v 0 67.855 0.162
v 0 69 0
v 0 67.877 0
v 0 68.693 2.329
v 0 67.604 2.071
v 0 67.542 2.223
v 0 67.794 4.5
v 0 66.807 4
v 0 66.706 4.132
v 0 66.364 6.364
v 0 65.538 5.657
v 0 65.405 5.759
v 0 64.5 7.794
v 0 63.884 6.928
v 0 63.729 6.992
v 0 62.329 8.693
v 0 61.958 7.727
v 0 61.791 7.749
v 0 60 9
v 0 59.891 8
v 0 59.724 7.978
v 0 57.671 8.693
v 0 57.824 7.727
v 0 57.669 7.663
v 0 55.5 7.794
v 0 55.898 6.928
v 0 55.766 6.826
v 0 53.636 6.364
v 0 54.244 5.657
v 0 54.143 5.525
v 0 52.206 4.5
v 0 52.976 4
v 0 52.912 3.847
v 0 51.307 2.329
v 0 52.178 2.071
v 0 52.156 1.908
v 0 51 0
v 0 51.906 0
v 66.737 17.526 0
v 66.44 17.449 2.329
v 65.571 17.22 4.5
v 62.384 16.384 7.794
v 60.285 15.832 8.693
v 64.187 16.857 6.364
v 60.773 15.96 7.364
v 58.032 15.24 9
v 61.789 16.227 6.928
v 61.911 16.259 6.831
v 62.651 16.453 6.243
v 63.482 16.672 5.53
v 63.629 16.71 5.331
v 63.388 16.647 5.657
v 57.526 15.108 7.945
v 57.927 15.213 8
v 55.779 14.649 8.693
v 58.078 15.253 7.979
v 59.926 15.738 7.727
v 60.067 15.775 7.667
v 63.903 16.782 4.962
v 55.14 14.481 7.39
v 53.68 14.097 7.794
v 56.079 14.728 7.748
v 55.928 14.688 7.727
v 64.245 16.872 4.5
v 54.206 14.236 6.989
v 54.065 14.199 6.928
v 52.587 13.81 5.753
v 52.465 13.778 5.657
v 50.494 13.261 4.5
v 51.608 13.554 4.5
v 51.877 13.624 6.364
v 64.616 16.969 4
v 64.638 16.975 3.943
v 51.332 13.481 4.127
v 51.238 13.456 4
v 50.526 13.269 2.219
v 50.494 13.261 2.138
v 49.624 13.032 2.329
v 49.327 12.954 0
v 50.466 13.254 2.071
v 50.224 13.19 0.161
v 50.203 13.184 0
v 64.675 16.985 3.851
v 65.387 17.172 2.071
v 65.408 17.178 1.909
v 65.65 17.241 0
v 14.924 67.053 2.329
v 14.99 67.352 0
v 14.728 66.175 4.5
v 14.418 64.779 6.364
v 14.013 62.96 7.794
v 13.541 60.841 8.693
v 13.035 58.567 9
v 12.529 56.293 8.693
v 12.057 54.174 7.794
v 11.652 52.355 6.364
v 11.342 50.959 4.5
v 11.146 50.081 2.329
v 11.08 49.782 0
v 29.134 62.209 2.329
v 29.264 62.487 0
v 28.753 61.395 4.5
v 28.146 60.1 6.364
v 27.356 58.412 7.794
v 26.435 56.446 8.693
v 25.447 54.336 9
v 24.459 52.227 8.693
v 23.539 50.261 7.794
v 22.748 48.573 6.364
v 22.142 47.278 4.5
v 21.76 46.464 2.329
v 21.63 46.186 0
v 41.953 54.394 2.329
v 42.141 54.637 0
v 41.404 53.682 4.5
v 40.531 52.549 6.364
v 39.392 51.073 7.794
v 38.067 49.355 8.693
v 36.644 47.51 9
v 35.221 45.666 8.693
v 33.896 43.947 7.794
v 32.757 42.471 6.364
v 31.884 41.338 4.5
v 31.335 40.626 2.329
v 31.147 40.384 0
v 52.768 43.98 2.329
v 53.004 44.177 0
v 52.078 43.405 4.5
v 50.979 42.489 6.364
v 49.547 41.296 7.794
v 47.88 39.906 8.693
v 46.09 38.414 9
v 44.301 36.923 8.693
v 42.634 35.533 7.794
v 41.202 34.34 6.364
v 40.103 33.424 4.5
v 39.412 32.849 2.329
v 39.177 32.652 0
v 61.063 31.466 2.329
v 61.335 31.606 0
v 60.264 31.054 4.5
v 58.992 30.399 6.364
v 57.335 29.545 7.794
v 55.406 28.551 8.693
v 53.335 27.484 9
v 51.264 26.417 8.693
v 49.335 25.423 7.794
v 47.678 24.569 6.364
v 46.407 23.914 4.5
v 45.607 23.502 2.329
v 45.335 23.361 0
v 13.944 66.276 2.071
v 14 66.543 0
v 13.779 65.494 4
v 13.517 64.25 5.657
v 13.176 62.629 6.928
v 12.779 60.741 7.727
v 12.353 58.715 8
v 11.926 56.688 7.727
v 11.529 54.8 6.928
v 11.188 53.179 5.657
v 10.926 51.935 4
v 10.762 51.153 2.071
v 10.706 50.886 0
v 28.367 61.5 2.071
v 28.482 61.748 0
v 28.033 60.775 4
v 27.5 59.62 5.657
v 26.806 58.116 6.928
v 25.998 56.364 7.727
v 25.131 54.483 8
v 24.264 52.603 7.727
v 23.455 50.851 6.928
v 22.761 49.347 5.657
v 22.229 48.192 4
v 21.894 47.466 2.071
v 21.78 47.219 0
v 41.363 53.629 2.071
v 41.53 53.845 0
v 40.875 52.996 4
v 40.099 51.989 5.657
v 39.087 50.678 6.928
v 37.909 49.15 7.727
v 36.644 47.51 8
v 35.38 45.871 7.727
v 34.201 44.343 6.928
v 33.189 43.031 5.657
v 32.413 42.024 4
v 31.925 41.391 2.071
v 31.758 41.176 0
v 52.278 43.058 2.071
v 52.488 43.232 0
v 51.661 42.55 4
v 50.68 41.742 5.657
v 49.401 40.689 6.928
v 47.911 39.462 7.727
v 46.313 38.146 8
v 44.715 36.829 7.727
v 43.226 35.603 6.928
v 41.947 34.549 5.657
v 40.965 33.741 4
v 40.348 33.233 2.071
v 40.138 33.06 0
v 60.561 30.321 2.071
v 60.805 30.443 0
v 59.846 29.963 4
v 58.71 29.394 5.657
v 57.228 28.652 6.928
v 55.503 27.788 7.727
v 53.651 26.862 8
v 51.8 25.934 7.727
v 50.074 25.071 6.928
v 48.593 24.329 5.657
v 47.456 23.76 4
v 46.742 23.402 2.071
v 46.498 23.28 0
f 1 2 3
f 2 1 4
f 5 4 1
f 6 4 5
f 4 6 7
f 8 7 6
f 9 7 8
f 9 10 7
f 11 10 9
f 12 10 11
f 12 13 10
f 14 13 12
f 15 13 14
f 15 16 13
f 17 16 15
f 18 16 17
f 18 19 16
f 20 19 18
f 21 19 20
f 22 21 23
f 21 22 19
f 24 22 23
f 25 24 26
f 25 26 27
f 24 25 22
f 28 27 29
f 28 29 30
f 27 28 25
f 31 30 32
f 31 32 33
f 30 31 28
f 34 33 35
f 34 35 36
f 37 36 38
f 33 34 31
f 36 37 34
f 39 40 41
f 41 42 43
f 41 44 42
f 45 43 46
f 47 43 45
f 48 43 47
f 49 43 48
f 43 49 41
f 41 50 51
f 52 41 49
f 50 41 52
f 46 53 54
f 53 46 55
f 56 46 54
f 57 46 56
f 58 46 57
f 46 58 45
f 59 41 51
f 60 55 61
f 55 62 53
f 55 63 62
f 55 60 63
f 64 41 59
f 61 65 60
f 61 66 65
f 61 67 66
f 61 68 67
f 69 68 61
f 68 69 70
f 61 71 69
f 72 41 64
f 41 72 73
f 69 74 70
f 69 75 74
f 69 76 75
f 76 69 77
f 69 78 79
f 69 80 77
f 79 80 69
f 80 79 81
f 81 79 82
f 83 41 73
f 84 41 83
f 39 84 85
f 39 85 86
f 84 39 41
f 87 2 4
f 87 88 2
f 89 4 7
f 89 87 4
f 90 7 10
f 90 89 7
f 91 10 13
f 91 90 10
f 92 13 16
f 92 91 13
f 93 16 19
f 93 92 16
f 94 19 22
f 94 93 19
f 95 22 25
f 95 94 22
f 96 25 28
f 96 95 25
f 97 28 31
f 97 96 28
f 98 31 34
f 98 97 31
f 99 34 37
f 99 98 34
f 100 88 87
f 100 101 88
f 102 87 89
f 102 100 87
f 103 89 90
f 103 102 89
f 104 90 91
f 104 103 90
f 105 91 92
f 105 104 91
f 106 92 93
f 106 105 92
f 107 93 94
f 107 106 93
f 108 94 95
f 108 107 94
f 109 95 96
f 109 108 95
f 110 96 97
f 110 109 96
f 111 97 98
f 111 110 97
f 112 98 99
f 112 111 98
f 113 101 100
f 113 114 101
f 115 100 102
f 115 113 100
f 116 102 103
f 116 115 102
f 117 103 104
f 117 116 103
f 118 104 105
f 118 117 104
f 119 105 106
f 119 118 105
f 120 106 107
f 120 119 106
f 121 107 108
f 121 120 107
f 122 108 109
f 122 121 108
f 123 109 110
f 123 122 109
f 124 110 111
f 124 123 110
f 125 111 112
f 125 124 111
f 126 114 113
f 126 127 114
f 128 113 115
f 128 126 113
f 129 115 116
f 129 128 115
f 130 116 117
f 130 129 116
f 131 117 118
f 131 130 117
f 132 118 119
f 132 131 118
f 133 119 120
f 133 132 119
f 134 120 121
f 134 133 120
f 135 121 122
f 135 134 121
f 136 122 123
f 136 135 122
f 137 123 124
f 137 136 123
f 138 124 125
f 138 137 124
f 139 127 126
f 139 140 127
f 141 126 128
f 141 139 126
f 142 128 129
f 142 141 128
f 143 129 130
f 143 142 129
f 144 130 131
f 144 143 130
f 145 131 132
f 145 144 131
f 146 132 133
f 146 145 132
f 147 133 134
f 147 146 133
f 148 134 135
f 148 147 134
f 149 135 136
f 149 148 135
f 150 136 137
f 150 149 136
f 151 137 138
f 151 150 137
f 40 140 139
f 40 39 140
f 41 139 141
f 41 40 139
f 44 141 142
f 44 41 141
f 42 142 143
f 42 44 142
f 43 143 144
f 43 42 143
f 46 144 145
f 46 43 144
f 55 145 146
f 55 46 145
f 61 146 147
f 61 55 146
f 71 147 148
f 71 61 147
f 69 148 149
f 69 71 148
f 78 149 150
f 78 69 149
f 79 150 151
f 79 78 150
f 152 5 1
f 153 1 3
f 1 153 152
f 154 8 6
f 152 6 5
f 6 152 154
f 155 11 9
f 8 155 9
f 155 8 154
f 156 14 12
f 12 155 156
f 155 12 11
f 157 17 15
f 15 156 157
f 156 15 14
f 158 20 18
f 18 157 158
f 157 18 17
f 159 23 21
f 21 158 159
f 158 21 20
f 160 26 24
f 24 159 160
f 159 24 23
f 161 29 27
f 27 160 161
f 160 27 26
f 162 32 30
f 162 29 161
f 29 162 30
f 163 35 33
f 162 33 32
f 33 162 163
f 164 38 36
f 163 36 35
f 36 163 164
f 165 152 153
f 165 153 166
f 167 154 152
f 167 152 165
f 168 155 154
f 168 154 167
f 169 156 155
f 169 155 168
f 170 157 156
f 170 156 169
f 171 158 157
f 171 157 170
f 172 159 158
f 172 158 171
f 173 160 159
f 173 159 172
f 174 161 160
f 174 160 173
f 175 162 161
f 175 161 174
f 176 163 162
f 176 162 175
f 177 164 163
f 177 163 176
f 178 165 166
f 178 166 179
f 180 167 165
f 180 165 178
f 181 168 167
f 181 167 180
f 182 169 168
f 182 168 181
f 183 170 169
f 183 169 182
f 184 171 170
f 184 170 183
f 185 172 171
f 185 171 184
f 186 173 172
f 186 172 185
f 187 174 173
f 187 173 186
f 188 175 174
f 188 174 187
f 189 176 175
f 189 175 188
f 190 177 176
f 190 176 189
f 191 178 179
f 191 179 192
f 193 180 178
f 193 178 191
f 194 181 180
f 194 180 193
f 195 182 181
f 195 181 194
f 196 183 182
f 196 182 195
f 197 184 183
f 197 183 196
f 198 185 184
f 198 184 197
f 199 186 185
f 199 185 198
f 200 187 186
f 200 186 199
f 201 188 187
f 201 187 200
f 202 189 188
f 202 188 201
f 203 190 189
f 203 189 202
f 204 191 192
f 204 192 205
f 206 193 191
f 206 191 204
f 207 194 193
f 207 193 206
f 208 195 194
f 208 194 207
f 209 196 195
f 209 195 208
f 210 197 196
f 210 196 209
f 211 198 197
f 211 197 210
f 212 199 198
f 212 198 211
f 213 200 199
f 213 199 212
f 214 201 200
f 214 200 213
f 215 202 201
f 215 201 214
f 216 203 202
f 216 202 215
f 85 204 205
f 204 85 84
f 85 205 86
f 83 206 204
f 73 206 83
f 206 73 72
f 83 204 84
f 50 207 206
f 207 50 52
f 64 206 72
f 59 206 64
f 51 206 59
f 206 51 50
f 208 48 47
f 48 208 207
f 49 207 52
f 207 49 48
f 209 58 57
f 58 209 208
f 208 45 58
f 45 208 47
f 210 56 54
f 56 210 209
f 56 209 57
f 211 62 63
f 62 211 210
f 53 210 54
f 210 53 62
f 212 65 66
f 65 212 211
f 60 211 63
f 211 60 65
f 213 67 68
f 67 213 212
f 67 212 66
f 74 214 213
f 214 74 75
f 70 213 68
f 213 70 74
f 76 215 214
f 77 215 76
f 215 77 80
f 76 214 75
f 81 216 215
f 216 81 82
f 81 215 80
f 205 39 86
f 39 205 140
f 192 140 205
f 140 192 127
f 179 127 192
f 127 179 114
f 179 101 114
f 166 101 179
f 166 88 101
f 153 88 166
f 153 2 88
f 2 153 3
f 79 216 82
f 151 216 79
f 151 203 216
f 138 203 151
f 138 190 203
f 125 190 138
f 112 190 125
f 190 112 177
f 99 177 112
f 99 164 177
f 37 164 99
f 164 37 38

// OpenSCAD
// file: ../build_environments.scad
// build_environments.scad: modules to build level sections
//

module pool(diameter=10.0, wall_height=2.0, step_width=3.0, connections=[])
{
    difference() {
        union() {
        difference() {
            cylinder(h=0.5,r1=diameter+step_width,r2=diameter+step_width,$fn=48);
            translate([0,0,-0.1])
                cylinder(h=0.7,r1=diameter,r2=diameter,$fn=48);
        }
        difference() {
            cylinder(h=wall_height,r1=diameter+step_width+1.0,r2=diameter+step_width+1.0,$fn=48);
            translate([0,0,-0.1])
                cylinder(h=wall_height+0.2,r1=diameter+step_width,r2=diameter+step_width,$fn=48);
        }
        }
    
        for (c = connections)
        {
            rotate([0,90,0]) {
                angle = atan2(c[1],c[0]);
                rotate([-angle,0,0]) {
                    cylinder(h=diameter+5.0,r1=c[2],r2=c[2],$fn=48);
                }
            }
        }
    }
}

module straight(length=10.0, width=2.0, dy1=0.0, dy2=0.0, dz=0.0)
{
    dims = [0, 0, 0, 0, 0, (dz/length)];
    matrix = [
        [ 1, dims[0], dims[1], 0 ],
        [ dims[2], 1, dims[4], 0 ],
        [ dims[5], dims[3], 1, 0 ],
        [ 0, 0, 0, 1 ]
    ];
    multmatrix(matrix)
    difference() {
        translate([dy1,0,0])
        union() {
            rotate([0,90,0]) {
                difference() {
                    cylinder(h=(length-dy1-dy2),r1=width+1.0,r2=width+1.0,$fn=24);
                    translate([0,0,-0.1])
                        cylinder(h=(length-dy1-dy2+0.2),r1=width,r2=width,$fn=24);
                }
                difference() {
                    cylinder(h=1.0,r1=width+2.0,r2=width+2.0,$fn=24);
                    translate([0,0,-0.1])
                        cylinder(h=1.2,r1=width,r2=width,$fn=24);
                }
                translate([0,0,(length-dy1-dy2)-1.0]) {
                    difference() {
                        cylinder(h=1.0,r1=width+2.0,r2=width+2.0,$fn=24);
                        translate([0,0,-0.1])
                            cylinder(h=1.2,r1=width,r2=width,$fn=24);
                    }
                }
            }
        }
        translate([0,0,-(2*width+4.0)/2])
            cube([3*length,3*length,2*width+4.0],center=true);
    }
}

module curve(p0=[0,0], center=[0,0], dir=1, angle=0.0, width=2.0)
{
    radius = sqrt((p0[0]-center[0])*(p0[0]-center[0]) + (p0[1]-center[1])*(p0[1]-center[1]));
    if (dir == 0) {
        difference() {
            rotate([0,0,-90])
            difference() {
                rotate_extrude(angle = angle, convexity = 10, $fn=32)
                    translate([radius, 0, 0])
                        circle(r = width+1.0,$fn=24);
                rotate([0,0,-1.0])
                    rotate_extrude(angle = angle+2.0, convexity = 10, $fn=32)
                        translate([radius, 0, 0])
                            circle(r = width,$fn=24);
            }
            translate([0,0,-(2*width+4.0)/2])
                cube([5*radius,5*radius,2*width+4.0],center=true);
        }
    }
    else {
        difference() {
            rotate([0,0,90])
            difference() {
                rotate_extrude(angle = -angle, convexity = 10, $fn=32)
                    translate([radius, 0, 0])
                        circle(r = width+1.0,$fn=24);
                rotate([0,0,1.0])
                    rotate_extrude(angle = -angle-2.0, convexity = 10, $fn=32)
                        translate([radius, 0, 0])
                            circle(r = width,$fn=24);
            }
            translate([0,0,-(2*width+4.0)/2])
                cube([5*radius,5*radius,2*width+4.0],center=true);
        }
    }

}

// test pool
//pool(diameter=12.0000, wall_height=3.0000, step_width=3.0000, connections=[[0.0000,-26.0000,2.0000], [23.6074,0.0000,2.0000]]);

// test straight, slope
//straight(length=26.0000, width=2.0000, dy1=11.8322, dy2=6.7082, dz=0.0000);
//straight(length=29.1549, width=12.0000, dy1=0.0000, dy2=0.0000, dz=-15.0000);

// test curve
//curve(p0=[23.6074, 0.0000], center=[23.6074, 5.0000], dir=0, angle=60.1011, width=2.0000);
//curve(p0=[33.6426, 12.4219], center=[37.9771, 9.9295], dir=1, angle=120.4627, width=2.0000);
// main file
use <../build_environments.scad>;
curve(p0=[-1.6280, 316.7065], center=[51.5862, 288.9892], dir=1, angle=75.2852, width=8.0000);
